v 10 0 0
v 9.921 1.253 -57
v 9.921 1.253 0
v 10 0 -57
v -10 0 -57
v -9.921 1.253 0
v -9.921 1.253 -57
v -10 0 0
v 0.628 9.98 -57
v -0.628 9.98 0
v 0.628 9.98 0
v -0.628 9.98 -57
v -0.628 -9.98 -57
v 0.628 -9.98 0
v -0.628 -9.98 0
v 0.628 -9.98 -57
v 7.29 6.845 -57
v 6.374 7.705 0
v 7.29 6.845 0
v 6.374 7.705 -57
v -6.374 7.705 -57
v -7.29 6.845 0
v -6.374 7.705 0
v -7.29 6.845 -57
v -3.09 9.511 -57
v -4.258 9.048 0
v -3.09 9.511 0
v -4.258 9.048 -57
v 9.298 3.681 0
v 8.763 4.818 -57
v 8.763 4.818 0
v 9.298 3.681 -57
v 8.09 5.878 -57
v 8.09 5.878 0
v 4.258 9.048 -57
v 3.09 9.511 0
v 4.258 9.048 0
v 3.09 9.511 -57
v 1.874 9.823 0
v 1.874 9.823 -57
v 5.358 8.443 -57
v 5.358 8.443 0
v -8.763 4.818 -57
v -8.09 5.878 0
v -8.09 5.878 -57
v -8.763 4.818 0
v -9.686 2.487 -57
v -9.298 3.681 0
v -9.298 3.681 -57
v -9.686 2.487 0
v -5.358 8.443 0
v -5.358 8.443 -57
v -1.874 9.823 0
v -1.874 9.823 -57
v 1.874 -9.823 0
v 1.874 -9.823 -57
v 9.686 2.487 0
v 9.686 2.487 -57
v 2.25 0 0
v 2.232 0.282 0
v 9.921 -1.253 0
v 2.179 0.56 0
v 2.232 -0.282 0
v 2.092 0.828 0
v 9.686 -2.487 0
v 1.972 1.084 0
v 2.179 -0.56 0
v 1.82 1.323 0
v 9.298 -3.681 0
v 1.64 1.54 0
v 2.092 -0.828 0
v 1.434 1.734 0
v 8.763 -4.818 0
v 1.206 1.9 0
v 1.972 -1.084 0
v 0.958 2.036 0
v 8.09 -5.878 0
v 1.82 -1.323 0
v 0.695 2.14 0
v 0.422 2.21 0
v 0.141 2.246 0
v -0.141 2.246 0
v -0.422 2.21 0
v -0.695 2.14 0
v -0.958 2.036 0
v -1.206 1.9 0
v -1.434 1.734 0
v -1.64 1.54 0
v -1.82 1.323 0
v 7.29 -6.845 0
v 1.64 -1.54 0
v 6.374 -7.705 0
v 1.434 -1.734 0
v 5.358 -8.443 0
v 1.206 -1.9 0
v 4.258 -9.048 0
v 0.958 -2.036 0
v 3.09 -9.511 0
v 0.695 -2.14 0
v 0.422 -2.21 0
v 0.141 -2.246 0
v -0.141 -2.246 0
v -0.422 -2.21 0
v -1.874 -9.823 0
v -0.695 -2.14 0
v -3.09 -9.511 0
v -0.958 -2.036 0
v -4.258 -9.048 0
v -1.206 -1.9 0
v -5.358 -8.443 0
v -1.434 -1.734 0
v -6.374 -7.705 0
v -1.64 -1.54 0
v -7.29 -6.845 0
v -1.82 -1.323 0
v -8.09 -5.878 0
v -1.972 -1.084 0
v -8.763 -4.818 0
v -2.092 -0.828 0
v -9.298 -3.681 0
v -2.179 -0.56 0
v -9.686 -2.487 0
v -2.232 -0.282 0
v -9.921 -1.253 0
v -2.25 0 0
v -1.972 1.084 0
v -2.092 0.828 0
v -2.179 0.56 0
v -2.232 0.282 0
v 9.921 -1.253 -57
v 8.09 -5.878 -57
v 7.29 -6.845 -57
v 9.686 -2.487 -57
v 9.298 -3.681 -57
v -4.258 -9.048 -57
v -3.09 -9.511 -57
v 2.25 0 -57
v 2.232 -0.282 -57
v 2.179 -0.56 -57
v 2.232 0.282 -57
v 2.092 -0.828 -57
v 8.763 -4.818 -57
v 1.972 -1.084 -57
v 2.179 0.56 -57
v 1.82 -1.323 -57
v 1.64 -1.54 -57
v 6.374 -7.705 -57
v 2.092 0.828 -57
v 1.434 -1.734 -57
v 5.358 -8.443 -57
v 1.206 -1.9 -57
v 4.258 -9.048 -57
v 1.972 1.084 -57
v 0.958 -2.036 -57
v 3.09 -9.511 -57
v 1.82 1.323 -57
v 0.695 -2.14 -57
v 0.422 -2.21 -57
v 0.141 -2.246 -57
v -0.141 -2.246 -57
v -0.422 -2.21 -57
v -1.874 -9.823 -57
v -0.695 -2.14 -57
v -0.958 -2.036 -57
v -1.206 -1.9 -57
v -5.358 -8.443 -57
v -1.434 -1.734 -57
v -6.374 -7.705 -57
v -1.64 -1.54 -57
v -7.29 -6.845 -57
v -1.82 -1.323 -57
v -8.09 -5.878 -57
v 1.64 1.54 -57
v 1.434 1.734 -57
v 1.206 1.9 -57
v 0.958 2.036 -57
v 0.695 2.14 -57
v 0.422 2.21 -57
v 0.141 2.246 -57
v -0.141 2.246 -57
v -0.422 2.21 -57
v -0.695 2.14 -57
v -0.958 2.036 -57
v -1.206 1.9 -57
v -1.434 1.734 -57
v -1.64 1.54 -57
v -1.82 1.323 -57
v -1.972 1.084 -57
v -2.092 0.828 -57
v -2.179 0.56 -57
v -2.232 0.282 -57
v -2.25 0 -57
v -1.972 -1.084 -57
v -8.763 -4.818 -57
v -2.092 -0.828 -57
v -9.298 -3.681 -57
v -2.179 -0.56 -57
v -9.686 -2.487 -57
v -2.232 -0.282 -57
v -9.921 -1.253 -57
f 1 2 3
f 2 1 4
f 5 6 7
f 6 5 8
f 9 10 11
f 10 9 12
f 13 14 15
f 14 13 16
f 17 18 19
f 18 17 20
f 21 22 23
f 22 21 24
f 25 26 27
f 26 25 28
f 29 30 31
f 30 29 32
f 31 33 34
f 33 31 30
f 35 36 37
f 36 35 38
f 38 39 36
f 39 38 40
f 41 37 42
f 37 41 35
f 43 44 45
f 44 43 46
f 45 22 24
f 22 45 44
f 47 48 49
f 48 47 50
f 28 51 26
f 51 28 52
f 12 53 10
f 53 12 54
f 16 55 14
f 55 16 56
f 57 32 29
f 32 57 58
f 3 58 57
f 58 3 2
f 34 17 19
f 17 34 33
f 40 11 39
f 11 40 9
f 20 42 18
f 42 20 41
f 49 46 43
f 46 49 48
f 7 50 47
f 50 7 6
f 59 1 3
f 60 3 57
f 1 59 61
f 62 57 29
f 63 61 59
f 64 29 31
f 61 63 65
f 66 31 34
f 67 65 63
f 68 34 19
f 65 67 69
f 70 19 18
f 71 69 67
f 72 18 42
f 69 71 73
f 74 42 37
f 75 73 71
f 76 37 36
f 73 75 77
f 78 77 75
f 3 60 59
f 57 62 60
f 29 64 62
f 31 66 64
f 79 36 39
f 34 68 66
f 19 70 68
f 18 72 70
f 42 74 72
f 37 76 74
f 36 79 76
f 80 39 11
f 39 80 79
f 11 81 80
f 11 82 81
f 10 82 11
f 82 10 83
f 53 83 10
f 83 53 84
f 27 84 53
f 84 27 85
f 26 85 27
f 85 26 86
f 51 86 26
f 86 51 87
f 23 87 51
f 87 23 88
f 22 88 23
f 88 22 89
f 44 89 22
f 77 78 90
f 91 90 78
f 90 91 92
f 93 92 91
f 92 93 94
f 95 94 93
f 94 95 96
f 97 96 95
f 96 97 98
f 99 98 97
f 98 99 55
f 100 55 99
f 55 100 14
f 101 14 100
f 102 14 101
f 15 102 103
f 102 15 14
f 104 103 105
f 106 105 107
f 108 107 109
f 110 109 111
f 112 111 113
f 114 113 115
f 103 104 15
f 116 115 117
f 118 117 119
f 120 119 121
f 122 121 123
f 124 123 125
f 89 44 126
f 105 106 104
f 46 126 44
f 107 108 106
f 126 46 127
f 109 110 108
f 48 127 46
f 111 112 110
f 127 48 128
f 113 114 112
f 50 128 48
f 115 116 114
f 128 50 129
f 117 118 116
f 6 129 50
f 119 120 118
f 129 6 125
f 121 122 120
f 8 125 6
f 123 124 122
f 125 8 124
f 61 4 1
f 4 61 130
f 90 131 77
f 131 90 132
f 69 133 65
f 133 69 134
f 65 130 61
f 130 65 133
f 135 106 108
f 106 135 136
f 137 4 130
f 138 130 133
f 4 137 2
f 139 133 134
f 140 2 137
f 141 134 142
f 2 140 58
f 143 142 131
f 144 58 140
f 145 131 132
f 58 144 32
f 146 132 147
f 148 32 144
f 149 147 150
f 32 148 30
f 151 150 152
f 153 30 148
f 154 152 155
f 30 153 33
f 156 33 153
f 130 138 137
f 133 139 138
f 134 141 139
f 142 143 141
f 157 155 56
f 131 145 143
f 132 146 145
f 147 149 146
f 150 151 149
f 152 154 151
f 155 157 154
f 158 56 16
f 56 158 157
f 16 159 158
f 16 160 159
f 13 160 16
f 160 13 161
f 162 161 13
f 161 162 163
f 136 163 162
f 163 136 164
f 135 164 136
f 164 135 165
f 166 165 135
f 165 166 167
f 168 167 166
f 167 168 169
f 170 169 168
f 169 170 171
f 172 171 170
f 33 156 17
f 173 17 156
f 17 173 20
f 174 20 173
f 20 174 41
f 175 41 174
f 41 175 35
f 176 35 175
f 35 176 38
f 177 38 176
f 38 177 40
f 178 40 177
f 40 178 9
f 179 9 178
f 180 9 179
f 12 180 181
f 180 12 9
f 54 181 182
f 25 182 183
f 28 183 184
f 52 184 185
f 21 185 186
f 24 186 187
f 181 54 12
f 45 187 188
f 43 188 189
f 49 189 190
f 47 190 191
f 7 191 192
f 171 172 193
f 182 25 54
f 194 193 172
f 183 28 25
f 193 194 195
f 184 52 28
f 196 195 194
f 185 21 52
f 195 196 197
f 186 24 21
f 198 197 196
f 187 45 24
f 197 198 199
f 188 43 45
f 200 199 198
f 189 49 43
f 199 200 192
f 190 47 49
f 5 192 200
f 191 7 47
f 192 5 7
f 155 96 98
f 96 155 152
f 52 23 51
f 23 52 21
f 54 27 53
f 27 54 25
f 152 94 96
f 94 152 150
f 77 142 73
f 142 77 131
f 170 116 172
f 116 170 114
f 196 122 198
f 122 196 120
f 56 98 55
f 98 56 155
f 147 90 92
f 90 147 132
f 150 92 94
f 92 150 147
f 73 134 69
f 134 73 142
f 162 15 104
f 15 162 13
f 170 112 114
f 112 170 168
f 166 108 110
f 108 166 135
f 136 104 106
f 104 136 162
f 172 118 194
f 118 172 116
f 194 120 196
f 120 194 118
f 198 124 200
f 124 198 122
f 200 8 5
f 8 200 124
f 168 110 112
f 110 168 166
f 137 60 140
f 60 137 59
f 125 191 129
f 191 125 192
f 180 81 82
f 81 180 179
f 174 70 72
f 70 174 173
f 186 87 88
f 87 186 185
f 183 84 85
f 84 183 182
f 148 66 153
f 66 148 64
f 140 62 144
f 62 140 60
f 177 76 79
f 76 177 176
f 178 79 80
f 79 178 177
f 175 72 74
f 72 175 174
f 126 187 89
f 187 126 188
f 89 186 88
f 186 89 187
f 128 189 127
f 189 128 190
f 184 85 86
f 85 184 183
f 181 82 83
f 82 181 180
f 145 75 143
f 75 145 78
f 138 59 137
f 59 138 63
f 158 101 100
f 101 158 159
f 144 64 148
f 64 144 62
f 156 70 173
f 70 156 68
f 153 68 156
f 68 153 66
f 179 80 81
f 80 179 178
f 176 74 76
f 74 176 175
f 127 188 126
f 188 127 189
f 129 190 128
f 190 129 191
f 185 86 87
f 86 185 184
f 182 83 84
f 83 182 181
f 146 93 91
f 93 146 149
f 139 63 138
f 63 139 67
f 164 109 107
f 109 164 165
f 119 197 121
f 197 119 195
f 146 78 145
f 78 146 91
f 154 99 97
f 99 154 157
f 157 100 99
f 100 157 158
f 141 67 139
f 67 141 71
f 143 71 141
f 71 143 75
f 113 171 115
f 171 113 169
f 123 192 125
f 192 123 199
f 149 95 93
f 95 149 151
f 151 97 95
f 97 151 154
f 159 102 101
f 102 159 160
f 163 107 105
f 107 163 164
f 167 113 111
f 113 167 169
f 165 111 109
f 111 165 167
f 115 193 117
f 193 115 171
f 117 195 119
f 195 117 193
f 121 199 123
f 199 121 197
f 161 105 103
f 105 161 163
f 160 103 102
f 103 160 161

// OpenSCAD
$fn = 50;


difference() {
	union() {
		translate(v = [0, 0, -57.0000000000]) {
			cylinder(h = 57, r = 10.0000000000);
		}
		cylinder(h = 0, r = 19.0000000000);
	}
	union() {
		#translate(v = [0, 0, -57]) {
			cylinder(h = 57, r = 2.2500000000);
		}
	}
}
